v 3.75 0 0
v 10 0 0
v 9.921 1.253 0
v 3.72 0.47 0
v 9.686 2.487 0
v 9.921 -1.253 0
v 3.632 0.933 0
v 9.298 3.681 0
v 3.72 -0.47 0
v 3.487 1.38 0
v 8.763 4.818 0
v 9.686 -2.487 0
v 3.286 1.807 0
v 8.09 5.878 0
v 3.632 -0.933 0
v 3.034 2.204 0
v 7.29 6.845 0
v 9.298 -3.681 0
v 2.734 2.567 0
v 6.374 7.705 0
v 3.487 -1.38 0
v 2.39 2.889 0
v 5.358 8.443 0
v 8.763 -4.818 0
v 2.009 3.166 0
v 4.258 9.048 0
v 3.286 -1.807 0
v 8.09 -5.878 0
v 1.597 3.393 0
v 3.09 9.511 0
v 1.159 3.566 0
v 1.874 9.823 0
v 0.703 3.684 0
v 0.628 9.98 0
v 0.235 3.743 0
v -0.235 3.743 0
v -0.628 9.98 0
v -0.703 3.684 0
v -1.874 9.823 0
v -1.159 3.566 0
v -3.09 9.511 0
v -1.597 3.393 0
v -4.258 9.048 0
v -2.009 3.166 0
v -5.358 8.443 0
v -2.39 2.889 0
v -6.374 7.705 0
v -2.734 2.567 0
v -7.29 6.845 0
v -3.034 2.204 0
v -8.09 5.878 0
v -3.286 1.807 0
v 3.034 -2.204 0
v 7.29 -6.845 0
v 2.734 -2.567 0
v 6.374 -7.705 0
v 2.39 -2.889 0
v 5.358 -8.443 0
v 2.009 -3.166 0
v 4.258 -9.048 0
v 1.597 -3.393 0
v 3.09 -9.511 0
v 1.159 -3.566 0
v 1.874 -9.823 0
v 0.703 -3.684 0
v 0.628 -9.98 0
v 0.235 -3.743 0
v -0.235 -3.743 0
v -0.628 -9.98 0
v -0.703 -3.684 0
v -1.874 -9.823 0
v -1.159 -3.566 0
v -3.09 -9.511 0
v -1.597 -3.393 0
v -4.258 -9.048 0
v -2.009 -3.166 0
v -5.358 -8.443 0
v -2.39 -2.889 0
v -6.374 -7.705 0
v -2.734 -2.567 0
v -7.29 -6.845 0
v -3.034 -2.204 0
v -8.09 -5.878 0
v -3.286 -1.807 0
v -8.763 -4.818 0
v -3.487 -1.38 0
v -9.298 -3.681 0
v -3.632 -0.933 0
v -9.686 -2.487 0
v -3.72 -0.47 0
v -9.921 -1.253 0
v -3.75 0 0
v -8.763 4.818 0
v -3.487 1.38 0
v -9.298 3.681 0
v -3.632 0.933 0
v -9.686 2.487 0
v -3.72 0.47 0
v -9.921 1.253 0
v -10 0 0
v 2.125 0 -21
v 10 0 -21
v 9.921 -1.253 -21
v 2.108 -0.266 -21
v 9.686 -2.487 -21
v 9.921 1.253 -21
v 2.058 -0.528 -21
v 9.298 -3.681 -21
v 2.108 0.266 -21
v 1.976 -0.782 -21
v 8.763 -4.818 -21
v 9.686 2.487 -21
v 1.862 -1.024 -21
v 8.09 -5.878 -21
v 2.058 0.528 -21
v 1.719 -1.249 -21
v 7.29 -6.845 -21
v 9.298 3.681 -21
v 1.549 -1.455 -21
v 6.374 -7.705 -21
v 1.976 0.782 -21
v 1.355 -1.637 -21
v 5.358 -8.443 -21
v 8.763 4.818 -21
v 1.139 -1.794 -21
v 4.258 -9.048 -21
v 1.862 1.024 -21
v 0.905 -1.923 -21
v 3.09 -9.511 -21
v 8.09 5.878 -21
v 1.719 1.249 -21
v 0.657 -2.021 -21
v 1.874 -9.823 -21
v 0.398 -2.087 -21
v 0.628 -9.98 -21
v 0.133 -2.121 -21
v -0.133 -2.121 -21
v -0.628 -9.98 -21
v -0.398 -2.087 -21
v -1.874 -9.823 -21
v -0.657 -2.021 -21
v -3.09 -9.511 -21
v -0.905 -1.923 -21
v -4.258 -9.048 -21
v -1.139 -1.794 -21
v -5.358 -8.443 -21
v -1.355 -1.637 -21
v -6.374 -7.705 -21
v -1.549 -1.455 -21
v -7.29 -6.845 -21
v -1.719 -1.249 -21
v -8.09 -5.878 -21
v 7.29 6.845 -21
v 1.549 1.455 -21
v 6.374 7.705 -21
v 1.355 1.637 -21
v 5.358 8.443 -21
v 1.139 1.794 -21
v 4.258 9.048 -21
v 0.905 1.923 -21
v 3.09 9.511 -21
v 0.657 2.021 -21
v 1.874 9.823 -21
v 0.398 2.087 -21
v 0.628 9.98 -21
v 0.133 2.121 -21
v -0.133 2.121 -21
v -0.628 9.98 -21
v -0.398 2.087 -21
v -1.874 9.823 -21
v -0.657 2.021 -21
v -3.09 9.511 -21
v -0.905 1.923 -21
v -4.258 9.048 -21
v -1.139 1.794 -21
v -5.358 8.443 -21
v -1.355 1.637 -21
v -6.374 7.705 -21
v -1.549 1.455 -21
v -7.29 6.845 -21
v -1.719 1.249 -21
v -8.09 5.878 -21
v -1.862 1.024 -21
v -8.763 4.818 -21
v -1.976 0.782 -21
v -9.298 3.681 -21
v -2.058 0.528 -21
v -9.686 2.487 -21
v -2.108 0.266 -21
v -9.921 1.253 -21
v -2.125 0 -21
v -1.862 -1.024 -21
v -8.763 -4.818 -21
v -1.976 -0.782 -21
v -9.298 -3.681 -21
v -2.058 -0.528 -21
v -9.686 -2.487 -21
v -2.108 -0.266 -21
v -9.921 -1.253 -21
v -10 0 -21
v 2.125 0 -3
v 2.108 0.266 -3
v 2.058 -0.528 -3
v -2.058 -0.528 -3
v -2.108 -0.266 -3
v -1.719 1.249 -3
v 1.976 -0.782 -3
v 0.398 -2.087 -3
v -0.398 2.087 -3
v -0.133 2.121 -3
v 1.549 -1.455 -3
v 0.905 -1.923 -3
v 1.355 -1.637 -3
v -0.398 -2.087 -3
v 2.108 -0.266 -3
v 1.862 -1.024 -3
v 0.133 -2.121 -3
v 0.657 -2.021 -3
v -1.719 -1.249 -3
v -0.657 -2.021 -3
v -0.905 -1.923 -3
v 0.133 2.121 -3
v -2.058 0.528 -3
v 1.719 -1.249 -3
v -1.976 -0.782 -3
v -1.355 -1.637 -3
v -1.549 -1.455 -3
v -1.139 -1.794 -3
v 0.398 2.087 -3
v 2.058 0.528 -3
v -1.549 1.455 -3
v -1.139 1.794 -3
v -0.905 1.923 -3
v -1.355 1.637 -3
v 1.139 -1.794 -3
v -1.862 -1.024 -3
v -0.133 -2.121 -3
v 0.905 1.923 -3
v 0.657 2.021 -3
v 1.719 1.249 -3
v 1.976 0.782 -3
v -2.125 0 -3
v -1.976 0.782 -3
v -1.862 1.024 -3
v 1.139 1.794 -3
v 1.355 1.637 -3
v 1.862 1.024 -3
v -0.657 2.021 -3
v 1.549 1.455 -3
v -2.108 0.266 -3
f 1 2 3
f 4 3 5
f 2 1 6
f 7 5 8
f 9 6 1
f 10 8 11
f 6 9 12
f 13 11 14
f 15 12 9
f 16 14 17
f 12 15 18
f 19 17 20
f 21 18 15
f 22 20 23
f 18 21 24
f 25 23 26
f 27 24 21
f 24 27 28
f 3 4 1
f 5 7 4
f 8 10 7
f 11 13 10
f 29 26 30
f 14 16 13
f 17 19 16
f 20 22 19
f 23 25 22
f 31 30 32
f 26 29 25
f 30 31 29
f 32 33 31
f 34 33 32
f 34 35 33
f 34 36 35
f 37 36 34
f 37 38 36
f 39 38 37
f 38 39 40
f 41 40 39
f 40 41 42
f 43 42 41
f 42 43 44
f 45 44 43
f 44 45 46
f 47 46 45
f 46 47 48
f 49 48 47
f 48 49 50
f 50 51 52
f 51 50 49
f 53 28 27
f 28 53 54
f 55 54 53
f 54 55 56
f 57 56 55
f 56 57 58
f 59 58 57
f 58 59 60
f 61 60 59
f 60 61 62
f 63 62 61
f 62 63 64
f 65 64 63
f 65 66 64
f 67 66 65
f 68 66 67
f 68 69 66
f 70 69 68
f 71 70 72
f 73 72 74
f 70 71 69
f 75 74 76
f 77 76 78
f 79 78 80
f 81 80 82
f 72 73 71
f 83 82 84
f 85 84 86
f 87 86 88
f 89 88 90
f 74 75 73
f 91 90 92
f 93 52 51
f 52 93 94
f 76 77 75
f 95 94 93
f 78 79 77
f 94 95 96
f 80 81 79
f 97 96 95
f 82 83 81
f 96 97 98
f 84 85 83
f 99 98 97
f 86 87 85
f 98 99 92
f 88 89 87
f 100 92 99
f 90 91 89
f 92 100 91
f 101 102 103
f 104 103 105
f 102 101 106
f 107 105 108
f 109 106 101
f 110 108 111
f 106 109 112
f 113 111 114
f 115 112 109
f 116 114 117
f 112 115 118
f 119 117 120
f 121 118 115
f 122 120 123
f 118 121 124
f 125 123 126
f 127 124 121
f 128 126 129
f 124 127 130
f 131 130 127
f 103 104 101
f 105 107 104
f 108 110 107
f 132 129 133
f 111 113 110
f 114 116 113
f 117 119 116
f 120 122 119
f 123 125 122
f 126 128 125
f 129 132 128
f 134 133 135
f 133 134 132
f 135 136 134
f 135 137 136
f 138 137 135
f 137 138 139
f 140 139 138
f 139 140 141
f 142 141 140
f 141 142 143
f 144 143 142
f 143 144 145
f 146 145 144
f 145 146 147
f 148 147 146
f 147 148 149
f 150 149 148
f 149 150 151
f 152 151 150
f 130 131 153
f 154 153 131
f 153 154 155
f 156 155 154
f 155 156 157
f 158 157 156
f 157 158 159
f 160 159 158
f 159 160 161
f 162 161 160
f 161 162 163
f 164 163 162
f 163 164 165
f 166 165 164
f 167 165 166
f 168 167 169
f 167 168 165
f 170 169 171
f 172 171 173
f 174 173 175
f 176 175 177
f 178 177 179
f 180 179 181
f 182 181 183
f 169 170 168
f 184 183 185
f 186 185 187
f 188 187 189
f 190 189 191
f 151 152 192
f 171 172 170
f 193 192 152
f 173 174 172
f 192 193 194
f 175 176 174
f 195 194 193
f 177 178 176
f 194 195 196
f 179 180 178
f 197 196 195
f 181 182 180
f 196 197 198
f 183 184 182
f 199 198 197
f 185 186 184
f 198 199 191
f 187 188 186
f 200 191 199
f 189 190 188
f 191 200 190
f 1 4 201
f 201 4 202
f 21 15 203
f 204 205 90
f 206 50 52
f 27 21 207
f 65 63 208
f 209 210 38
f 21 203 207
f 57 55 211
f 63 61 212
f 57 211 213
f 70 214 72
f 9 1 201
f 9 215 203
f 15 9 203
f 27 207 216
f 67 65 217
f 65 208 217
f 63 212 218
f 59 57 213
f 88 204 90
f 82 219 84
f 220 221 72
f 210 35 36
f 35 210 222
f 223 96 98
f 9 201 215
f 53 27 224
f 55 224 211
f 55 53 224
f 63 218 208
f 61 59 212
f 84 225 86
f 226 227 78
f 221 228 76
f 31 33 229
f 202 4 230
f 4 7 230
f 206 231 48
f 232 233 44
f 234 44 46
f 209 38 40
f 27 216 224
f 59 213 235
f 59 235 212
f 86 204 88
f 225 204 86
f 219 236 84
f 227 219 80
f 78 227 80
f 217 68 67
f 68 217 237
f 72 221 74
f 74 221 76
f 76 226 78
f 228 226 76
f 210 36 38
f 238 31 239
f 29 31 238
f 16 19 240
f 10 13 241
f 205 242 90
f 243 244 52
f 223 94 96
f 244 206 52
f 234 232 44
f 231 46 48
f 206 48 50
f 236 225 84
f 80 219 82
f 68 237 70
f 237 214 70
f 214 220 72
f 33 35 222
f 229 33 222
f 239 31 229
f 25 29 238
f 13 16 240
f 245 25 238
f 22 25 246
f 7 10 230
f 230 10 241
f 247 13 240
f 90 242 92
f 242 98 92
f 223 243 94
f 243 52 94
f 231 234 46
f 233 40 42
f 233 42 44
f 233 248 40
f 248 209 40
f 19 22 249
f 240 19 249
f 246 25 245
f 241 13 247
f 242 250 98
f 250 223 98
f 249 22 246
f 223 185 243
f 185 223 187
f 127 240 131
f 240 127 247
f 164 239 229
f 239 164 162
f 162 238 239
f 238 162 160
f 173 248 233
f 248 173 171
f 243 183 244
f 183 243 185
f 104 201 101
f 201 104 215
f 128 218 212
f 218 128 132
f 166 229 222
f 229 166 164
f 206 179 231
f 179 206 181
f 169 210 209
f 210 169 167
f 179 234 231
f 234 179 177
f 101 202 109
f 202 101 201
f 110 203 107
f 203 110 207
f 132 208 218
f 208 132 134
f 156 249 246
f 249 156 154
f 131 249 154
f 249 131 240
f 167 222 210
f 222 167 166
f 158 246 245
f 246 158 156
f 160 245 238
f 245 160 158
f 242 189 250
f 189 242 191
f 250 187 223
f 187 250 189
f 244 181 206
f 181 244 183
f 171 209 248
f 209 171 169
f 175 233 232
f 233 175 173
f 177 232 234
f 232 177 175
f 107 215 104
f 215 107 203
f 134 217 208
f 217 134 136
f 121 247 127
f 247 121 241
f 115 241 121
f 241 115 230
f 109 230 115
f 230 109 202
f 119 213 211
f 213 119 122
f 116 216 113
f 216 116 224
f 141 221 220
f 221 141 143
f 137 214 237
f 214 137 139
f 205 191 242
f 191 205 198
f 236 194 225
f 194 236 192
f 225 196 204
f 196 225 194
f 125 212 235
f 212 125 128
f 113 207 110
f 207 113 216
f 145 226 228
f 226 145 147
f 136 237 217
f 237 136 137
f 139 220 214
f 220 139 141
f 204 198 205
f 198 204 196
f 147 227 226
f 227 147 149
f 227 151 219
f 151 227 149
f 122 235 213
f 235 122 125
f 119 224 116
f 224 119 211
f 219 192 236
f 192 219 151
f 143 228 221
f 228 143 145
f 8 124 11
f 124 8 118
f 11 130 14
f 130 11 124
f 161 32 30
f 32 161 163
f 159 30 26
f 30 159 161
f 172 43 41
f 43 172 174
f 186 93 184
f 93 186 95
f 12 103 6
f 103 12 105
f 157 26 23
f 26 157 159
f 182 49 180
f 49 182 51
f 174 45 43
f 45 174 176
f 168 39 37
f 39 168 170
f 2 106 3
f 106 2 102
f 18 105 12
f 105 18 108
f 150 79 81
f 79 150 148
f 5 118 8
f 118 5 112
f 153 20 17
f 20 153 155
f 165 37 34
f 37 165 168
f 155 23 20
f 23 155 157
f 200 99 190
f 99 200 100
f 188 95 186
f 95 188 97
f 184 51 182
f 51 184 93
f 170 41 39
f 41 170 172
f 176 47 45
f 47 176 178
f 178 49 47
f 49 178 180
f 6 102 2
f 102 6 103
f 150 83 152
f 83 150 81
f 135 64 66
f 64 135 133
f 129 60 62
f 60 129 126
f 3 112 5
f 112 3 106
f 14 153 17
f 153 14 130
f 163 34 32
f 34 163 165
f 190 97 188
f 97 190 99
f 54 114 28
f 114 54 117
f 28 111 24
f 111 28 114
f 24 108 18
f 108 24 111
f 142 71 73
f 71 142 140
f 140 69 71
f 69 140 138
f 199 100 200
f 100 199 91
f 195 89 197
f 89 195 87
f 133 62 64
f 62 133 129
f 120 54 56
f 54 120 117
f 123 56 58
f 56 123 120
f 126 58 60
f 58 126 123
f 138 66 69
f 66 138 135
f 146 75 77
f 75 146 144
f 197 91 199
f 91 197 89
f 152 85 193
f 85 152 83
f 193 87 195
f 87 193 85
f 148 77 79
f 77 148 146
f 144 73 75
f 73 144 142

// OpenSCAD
$fn = 50;


difference() {
	union() {
		translate(v = [0, 0, -21.0000000000]) {
			cylinder(h = 21, r = 10.0000000000);
		}
		cylinder(h = 0, r = 19.0000000000);
	}
	union() {
		translate(v = [0, 0, 0]) {
			rotate(a = [0, 0, 0]) {
				difference() {
					union() {
						#translate(v = [0, 0, -21.0000000000]) {
							cylinder(h = 21, r = 2.0000000000);
						}
						#translate(v = [0, 0, -3]) {
							cylinder(h = 3, r1 = 2.1250000000, r2 = 3.7500000000);
						}
						#translate(v = [0, 0, -21.0000000000]) {
							cylinder(h = 21, r = 2.1250000000);
						}
						#translate(v = [0, 0, -21.0000000000]) {
							cylinder(h = 21, r = 2.0000000000);
						}
					}
					union();
				}
			}
		}
	}
}
